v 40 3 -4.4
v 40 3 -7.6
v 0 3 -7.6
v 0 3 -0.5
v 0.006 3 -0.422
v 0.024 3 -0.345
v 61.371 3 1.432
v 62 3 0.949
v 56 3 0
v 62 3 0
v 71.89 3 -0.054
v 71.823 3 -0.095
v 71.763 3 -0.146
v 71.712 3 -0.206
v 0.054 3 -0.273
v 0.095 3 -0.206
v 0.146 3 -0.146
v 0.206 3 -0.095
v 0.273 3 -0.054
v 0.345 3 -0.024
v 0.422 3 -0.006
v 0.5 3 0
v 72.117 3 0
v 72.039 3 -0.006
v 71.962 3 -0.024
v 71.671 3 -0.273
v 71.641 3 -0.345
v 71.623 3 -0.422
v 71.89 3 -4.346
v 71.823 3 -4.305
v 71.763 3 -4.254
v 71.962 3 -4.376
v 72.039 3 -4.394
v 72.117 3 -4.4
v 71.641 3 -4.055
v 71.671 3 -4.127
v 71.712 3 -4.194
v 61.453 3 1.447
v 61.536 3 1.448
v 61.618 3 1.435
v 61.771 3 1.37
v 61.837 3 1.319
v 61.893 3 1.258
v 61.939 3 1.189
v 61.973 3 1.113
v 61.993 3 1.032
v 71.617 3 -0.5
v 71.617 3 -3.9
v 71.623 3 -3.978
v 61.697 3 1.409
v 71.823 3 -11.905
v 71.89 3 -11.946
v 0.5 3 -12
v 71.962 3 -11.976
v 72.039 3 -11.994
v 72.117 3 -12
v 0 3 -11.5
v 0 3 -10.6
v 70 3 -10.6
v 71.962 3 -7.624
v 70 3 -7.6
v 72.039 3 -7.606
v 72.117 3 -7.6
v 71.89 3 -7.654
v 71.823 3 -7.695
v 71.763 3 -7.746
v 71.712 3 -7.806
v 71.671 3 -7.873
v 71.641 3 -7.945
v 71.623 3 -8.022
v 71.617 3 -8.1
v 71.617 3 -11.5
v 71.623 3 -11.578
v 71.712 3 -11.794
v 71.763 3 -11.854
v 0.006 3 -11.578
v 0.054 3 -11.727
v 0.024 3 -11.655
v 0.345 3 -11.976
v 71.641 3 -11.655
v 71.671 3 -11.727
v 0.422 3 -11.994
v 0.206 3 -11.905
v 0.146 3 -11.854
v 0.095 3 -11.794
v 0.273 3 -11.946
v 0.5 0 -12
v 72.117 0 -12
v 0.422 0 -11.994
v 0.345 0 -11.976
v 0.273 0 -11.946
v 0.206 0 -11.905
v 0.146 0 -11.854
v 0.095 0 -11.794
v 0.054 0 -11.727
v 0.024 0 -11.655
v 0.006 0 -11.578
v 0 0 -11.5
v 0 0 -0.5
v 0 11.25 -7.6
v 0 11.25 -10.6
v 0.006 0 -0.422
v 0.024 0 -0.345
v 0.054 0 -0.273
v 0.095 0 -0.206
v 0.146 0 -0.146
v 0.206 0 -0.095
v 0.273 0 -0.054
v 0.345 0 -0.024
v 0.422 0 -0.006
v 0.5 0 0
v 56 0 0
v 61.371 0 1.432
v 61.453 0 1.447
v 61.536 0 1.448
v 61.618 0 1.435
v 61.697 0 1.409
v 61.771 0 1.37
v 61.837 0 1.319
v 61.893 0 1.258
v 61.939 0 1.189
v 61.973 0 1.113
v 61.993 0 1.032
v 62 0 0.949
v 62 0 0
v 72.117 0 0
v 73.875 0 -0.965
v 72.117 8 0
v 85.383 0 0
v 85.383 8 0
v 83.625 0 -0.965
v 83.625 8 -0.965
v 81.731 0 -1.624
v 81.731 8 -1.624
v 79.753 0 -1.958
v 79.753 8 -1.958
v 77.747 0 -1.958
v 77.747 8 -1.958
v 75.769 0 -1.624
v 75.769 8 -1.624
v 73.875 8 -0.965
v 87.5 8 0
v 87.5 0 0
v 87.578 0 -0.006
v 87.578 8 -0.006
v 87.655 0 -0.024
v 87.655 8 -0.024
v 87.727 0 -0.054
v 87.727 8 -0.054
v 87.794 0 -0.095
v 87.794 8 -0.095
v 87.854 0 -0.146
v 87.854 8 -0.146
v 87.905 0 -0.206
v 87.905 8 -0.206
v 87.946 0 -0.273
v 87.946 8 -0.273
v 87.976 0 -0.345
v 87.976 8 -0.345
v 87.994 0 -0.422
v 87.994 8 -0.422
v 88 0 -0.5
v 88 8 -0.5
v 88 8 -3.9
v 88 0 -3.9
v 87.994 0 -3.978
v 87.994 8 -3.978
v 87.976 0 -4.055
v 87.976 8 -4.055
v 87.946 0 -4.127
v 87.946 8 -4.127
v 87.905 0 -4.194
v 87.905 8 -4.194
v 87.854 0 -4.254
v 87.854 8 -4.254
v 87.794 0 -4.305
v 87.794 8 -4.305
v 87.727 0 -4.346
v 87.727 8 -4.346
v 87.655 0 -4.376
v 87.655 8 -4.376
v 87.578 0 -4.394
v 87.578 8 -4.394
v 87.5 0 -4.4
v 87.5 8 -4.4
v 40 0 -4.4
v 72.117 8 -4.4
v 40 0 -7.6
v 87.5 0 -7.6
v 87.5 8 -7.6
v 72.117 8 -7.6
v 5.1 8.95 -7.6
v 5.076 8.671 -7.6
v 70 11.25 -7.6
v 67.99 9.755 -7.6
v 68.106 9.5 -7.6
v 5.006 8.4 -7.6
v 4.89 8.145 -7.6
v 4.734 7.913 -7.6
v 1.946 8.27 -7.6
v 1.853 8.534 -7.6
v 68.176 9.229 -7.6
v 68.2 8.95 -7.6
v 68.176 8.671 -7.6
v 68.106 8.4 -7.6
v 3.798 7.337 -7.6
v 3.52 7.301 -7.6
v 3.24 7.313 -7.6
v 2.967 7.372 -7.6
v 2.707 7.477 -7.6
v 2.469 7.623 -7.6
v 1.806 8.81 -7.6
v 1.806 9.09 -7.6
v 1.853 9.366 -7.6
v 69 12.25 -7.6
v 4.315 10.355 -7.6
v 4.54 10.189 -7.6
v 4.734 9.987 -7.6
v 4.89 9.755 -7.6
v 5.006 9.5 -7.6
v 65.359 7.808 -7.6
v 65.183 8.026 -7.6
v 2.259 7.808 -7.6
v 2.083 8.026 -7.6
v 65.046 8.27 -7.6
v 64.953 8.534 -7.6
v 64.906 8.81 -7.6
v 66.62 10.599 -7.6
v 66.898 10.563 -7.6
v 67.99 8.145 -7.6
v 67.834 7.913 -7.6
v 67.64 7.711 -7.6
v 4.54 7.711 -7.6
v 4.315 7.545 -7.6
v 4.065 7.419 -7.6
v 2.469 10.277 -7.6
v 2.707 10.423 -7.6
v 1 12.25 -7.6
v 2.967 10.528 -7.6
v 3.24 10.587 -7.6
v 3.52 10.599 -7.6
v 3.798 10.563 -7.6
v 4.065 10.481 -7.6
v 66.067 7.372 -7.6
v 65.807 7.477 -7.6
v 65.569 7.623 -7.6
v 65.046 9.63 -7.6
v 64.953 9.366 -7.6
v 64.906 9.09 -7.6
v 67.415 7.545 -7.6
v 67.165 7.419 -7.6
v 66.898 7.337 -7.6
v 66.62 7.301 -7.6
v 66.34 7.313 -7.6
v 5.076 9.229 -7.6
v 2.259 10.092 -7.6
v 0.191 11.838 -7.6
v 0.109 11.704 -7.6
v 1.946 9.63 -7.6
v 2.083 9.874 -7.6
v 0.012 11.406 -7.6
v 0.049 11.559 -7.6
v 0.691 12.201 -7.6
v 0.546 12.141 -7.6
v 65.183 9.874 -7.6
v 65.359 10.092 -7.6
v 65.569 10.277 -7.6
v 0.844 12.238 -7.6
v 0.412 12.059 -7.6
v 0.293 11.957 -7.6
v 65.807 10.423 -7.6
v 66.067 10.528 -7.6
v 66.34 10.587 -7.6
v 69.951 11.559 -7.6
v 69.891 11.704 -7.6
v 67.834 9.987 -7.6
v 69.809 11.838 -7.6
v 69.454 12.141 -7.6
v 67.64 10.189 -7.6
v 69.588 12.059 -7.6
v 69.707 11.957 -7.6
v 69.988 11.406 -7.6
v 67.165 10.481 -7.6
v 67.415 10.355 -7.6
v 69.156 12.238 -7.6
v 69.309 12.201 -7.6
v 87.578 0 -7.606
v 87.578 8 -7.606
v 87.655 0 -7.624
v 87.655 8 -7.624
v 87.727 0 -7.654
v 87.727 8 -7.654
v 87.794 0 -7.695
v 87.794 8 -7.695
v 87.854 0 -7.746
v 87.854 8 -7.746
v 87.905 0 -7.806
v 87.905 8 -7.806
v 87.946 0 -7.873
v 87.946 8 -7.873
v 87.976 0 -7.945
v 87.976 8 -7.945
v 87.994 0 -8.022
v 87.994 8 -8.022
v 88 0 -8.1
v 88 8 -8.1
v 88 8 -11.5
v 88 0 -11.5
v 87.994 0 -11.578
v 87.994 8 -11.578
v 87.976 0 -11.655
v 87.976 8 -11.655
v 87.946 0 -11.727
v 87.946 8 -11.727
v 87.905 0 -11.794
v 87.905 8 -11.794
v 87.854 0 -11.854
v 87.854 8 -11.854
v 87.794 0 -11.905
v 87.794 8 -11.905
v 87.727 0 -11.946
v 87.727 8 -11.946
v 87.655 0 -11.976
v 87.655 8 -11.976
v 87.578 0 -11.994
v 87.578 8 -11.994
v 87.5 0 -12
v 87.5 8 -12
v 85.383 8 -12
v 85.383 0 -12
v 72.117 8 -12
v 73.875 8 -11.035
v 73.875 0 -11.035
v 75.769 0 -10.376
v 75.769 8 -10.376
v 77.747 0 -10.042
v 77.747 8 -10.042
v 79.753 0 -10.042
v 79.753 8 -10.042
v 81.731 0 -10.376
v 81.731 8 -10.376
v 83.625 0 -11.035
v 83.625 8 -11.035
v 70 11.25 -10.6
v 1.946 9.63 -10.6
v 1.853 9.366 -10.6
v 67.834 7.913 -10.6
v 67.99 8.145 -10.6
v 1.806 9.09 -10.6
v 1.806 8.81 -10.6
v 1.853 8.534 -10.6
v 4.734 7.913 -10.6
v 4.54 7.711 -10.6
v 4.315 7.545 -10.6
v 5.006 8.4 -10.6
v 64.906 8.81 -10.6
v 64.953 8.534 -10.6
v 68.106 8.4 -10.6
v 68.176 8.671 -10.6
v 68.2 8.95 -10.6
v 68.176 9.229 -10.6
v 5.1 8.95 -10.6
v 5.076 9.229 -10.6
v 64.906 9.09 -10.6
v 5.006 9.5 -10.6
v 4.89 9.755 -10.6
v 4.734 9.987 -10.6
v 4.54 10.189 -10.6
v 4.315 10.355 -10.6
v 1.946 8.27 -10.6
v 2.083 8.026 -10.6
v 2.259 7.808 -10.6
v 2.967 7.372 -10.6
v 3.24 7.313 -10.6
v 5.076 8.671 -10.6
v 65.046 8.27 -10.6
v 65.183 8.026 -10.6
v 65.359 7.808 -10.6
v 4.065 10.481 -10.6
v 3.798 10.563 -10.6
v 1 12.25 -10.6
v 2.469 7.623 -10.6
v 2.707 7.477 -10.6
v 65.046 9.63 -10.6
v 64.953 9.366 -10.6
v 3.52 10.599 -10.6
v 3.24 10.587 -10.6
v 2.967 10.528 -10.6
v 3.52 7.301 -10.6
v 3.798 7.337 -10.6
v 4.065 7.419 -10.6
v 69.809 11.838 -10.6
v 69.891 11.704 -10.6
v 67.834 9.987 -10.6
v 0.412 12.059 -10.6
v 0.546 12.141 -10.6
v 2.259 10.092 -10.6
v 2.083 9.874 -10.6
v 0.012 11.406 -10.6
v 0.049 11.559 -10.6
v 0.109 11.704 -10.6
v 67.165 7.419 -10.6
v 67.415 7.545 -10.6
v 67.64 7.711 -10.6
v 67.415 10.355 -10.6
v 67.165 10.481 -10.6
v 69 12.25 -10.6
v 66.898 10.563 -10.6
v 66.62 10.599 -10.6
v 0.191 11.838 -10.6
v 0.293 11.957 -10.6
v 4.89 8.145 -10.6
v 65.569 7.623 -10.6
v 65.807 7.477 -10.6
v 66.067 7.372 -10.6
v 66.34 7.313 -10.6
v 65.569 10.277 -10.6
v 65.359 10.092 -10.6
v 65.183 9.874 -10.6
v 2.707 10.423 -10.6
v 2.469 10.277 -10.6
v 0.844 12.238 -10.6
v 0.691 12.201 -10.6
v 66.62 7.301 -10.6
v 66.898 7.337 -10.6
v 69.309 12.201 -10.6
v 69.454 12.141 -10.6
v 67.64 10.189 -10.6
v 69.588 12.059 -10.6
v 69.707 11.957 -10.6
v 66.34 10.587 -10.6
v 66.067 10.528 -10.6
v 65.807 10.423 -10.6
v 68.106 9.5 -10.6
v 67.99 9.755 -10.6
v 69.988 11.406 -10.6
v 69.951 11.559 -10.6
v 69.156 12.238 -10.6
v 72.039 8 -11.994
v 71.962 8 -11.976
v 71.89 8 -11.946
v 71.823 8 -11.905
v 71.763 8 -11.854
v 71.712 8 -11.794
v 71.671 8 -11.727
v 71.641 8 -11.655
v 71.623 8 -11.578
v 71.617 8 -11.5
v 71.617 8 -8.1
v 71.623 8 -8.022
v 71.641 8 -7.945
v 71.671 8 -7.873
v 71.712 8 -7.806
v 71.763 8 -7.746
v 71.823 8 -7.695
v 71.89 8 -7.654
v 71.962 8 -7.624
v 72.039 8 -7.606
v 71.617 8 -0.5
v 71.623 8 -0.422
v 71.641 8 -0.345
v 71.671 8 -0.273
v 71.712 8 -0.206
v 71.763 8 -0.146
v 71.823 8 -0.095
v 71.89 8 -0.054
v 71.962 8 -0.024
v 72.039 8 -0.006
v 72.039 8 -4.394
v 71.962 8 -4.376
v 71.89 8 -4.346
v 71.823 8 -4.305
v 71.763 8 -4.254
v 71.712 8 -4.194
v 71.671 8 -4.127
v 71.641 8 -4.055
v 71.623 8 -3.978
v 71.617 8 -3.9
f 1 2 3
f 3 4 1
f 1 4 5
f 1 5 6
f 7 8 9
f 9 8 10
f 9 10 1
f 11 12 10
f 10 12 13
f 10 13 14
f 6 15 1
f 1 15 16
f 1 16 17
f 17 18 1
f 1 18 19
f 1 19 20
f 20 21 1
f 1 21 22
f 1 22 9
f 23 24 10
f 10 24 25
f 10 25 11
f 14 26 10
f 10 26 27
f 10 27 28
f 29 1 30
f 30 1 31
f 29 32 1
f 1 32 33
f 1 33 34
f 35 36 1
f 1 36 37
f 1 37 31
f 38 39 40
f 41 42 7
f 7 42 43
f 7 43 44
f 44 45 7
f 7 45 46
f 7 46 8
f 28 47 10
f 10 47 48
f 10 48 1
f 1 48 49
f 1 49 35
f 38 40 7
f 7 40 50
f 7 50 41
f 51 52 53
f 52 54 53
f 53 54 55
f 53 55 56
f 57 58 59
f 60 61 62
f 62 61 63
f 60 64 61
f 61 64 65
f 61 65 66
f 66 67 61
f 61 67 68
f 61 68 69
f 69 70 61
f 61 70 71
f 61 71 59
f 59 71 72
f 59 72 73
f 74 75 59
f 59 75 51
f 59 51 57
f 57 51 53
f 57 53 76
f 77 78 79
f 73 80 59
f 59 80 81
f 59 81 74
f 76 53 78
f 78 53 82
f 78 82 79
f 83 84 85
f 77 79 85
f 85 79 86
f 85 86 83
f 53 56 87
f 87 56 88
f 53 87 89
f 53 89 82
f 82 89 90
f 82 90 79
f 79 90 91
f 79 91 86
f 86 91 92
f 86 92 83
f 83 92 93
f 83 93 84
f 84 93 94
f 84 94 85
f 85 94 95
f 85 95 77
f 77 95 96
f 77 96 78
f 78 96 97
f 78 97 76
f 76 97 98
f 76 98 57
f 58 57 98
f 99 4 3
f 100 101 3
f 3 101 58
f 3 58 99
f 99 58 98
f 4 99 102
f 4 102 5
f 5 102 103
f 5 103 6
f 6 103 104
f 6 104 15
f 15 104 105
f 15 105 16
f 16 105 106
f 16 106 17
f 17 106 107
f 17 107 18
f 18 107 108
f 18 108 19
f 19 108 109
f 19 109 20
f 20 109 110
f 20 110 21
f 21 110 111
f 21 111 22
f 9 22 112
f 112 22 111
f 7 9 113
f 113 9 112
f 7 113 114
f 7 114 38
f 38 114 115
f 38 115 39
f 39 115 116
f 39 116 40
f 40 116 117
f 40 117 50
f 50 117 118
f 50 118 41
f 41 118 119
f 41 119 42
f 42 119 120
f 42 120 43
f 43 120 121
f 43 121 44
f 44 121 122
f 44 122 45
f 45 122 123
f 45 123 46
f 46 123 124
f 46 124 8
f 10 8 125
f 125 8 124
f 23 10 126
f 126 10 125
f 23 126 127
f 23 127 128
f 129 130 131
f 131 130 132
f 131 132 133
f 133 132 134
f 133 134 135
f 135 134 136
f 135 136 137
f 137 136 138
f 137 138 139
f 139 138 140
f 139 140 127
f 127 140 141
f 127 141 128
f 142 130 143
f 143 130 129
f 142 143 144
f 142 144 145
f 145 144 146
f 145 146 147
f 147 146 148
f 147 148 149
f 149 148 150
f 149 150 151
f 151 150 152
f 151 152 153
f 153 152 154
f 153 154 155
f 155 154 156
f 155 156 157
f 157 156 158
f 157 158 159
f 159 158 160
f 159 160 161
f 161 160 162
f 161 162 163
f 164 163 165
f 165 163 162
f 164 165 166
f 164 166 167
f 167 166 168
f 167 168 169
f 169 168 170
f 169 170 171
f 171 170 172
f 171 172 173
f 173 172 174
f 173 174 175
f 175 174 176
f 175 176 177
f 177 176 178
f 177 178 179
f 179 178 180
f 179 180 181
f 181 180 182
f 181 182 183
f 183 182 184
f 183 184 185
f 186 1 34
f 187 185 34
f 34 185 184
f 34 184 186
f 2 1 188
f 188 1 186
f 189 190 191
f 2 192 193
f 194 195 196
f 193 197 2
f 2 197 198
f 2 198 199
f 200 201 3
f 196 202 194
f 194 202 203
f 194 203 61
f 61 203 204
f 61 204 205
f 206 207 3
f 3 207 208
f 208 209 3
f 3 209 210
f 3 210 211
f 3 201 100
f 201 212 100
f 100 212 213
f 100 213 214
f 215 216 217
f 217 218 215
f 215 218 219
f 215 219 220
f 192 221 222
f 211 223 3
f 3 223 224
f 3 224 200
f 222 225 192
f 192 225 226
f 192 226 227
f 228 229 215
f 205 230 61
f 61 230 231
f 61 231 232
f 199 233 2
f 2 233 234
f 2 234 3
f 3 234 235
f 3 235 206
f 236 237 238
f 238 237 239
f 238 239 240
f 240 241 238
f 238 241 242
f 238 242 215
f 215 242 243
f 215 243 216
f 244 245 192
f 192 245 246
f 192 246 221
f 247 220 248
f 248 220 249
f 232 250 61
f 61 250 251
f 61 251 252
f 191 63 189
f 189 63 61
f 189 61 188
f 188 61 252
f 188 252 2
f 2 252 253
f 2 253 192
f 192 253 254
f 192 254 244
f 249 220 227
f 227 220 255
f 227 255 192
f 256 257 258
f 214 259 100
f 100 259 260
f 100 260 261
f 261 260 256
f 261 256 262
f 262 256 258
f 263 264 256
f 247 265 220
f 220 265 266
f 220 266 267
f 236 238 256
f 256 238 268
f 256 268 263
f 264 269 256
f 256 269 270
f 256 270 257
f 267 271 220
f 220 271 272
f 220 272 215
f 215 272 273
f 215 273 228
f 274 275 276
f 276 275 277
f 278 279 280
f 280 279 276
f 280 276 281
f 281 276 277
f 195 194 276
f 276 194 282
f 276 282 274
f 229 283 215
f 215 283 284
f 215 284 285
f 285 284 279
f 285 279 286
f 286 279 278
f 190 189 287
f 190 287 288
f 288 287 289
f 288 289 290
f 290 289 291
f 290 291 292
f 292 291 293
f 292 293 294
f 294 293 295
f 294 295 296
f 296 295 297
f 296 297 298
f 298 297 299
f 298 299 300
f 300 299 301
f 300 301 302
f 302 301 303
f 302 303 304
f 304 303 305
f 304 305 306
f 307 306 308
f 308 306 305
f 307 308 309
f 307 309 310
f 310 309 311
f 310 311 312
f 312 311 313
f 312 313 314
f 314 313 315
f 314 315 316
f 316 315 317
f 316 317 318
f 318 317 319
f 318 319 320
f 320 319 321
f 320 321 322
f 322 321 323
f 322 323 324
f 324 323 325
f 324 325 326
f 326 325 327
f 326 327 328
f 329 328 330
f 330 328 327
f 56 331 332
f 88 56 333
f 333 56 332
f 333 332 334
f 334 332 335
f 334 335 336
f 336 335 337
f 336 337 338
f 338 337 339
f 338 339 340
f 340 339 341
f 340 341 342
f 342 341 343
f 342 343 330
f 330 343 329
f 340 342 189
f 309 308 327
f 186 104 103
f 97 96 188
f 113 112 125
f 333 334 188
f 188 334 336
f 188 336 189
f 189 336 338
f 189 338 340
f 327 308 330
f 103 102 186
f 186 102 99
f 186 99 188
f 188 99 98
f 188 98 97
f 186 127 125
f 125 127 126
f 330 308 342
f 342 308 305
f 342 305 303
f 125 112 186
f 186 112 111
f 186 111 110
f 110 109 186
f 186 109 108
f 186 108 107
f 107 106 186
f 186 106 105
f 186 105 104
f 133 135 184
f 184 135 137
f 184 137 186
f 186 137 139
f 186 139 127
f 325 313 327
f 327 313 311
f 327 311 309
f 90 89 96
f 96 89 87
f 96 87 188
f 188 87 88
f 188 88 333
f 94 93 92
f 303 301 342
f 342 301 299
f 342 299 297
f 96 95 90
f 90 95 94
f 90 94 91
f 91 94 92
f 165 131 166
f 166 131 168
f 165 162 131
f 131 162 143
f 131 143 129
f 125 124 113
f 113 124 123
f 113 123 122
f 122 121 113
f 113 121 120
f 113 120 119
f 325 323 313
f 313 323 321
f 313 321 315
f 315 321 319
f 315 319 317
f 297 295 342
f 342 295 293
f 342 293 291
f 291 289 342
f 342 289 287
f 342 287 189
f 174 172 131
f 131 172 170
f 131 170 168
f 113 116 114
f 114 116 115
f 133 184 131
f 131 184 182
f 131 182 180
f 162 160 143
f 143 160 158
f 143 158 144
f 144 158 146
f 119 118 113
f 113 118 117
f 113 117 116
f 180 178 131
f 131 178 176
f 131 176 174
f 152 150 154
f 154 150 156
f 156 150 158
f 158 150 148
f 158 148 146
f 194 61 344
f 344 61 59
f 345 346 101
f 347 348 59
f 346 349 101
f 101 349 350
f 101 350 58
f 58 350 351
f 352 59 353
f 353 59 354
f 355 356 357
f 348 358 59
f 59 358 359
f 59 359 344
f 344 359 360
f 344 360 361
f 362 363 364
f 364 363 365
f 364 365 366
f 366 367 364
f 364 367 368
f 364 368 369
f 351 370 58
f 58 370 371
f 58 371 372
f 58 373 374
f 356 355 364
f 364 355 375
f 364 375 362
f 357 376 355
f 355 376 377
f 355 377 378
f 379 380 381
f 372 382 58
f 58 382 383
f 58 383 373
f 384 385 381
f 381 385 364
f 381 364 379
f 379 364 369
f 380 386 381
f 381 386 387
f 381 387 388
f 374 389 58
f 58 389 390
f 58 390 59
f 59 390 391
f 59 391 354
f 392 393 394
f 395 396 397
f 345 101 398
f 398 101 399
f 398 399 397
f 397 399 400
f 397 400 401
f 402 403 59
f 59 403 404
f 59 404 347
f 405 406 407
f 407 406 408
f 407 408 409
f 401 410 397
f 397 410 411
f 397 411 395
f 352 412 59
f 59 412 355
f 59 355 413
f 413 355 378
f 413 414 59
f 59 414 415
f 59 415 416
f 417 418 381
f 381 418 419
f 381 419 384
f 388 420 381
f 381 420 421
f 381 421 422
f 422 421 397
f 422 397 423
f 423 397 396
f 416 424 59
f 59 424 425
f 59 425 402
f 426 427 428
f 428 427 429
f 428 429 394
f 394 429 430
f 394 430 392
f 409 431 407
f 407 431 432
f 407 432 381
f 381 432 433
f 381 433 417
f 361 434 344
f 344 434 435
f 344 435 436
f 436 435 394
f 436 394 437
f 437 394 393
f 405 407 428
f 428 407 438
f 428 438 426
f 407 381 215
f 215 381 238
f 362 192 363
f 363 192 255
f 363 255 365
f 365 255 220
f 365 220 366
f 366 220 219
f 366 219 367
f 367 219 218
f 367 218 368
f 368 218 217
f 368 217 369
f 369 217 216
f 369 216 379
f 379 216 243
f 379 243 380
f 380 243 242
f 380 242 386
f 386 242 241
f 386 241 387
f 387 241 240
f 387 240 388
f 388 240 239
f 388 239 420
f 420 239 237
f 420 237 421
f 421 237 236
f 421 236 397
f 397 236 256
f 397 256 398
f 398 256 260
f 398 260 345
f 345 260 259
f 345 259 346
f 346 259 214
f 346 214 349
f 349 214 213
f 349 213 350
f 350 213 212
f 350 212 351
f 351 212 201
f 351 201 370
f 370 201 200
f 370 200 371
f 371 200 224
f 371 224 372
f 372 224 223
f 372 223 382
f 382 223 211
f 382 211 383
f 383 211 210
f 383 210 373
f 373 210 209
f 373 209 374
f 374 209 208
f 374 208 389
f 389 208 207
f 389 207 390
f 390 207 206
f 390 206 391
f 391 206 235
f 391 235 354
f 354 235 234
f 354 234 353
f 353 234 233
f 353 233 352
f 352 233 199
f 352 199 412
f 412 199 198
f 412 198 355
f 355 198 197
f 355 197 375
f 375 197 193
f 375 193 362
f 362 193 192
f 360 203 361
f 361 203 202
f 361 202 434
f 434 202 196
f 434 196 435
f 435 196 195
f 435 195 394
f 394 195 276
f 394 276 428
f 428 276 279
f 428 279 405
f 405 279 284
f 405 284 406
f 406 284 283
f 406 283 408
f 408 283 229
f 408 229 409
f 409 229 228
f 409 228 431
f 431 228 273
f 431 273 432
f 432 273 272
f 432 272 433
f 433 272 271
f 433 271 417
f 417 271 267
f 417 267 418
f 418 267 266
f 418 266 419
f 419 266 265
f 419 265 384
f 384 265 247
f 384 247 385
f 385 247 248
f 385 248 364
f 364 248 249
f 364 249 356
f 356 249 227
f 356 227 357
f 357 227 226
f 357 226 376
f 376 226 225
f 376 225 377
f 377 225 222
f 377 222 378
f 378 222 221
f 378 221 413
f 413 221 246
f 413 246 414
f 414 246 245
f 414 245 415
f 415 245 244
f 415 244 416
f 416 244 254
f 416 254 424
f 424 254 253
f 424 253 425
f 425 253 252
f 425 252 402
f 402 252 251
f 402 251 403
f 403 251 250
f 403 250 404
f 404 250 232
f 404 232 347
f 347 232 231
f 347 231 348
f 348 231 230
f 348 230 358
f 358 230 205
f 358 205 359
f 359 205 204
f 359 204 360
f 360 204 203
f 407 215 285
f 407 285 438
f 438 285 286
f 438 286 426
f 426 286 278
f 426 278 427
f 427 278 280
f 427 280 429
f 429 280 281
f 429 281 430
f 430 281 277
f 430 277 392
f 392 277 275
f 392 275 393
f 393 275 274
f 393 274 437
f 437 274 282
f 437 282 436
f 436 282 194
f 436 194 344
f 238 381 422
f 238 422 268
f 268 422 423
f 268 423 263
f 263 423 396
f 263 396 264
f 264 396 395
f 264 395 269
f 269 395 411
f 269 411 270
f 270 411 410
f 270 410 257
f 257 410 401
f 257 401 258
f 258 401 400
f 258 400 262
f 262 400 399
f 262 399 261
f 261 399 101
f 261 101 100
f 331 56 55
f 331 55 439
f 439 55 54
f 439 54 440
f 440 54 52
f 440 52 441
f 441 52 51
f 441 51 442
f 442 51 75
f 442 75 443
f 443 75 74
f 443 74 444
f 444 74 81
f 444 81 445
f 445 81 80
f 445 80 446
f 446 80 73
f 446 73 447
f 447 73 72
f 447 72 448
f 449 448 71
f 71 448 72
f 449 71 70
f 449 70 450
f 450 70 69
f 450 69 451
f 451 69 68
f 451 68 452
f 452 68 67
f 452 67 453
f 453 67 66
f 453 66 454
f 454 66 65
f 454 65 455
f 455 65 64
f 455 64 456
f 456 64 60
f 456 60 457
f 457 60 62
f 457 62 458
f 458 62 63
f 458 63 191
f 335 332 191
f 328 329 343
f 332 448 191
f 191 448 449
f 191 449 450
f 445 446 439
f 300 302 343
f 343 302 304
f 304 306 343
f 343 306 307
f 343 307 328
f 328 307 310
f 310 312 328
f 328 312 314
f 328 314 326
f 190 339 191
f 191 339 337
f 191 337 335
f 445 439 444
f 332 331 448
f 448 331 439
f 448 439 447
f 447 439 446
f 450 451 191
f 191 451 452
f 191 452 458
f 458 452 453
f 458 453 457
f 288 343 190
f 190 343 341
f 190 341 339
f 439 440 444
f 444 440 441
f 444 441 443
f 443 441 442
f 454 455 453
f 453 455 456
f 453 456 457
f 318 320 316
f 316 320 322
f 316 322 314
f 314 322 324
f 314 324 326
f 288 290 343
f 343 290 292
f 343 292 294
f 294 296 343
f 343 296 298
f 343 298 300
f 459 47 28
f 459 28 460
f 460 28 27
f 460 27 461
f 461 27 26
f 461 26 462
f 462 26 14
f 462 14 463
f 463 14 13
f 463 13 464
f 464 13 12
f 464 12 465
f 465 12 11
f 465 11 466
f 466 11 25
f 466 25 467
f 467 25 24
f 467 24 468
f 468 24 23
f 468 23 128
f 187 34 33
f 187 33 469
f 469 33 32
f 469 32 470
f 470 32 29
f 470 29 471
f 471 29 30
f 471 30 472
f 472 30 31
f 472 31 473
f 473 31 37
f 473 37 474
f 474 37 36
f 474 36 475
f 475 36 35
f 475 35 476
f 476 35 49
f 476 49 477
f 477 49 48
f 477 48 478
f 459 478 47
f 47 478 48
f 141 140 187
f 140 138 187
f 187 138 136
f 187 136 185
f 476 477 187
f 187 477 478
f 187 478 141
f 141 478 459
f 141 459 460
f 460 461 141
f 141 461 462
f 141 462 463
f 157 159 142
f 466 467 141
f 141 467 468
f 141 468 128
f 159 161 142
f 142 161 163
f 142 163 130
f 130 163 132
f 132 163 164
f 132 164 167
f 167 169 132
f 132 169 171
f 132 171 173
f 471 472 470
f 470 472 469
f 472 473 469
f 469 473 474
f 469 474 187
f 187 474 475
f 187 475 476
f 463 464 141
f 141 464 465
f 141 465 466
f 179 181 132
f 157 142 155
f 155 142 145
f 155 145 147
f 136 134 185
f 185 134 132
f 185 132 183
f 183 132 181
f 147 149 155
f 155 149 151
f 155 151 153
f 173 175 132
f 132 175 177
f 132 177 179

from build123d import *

# Parameters (mm, degrees)
EXTRUDE_1_DEPTH     = 3
SKETCH_4_W          = 70
SKETCH_4_H          = 3
EXTRUDE_2_DEPTH     = 9.25
CUT_EXTRUDE_1_REACH = 91.308
SKETCH_5_R          = 1.65
FILLET_1_R          = 1
EXTRUDE_3_DEPTH     = 5


with BuildPart() as part:
    # ｽｹｯﾁ2 → ﾎﾞｽ - 押し出し1 (new body)
    with BuildSketch(Plane(origin=(0, 0, 0), x_dir=(1, 0, 0), z_dir=(0, 1, 0))):
        with BuildLine():
            Line((70, 7.6), (40, 7.6))
            Line((40, 7.6), (40, 4.4))
            Line((40, 4.4), (70, 4.4))
            Line((70, 4.4), (87.5, 4.4))
            ThreePointArc((87.5, 4.4), (87.853553391, 4.253553391), (88, 3.9))
            Line((88, 3.9), (88, 0.5))
            ThreePointArc((88, 0.5), (87.853553391, 0.146446609), (87.5, 0))
            Line((87.5, 0), (85.383249581, 0))
            ThreePointArc((85.383249581, 0), (78.75, 2), (72.116750419, 0))
            Line((72.116750419, 0), (70, 0))
            Line((70, 0), (62, 0))
            Line((62, 0), (62, -0.949194177))
            ThreePointArc((62, -0.949194177), (61.80461807, -1.345688605), (61.371168675, -1.432311647))
            Line((61.371168675, -1.432311647), (56, 0))
            Line((56, 0), (0.5, 0))
            ThreePointArc((0.5, 0), (0.146446609, 0.146446609), (0, 0.5))
            Line((0, 0.5), (0, 11.5))
            ThreePointArc((0, 11.5), (0.146446609, 11.853553391), (0.5, 12))
            Line((0.5, 12), (70, 12))
            Line((70, 12), (72.116750419, 12))
            ThreePointArc((72.116750419, 12), (78.75, 10), (85.383249581, 12))
            Line((85.383249581, 12), (87.5, 12))
            ThreePointArc((87.5, 12), (87.853553391, 11.853553391), (88, 11.5))
            Line((88, 11.5), (88, 8.1))
            ThreePointArc((88, 8.1), (87.853553391, 7.746446609), (87.5, 7.6))
            Line((87.5, 7.6), (70, 7.6))
        make_face()
    extrude(amount=EXTRUDE_1_DEPTH)

    # ｽｹｯﾁ4 → ﾎﾞｽ - 押し出し2 (add)
    with BuildSketch(Plane(origin=(0, 3, 0), x_dir=(1, 0, 0), z_dir=(0, 1, 0))):
        with Locations((35, 9.1)):
            Rectangle(SKETCH_4_W, SKETCH_4_H)
    extrude(amount=EXTRUDE_2_DEPTH)

    # ｽｹｯﾁ5 → ｶｯﾄ - 押し出し1 (cut, up to next)
    with BuildSketch(Plane.XY.offset(-7.6), mode=Mode.PRIVATE) as cut_extrude_1_sk1:
        with Locations((3.45, 8.95)):
            Circle(SKETCH_5_R)
    cut_extrude_1_tool1 = extrude(cut_extrude_1_sk1.sketch, amount=-CUT_EXTRUDE_1_REACH, mode=Mode.PRIVATE) & part.part
    # ｽｹｯﾁ5 → ｶｯﾄ - 押し出し1 (cut, up to next)
    with BuildSketch(Plane.XY.offset(-7.6), mode=Mode.PRIVATE) as cut_extrude_1_sk2:
        with Locations((66.55, 8.95)):
            Circle(SKETCH_5_R)
    cut_extrude_1_tool2 = extrude(cut_extrude_1_sk2.sketch, amount=-CUT_EXTRUDE_1_REACH, mode=Mode.PRIVATE) & part.part
    add(cut_extrude_1_tool1.solids().sort_by_distance((3.45, 8.95, -7.6))[0], mode=Mode.SUBTRACT)
    add(cut_extrude_1_tool2.solids().sort_by_distance((66.55, 8.95, -7.6))[0], mode=Mode.SUBTRACT)

    # ﾌｨﾚｯﾄ1
    fillet_1_edges = [part.edges().sort_by_distance(p)[0] for p in [
        (70, 12.25, -9.1),
        (0, 12.25, -9.1),
    ]]
    fillet(fillet_1_edges, radius=FILLET_1_R)

    # ｽｹｯﾁ6 → ﾎﾞｽ - 押し出し3 (add)
    with BuildSketch(Plane(origin=(0, 3, 0), x_dir=(1, 0, 0), z_dir=(0, 1, 0))):
        with BuildLine():
            Line((88, 11.5), (88, 8.1))
            ThreePointArc((88, 8.1), (87.853553391, 7.746446609), (87.5, 7.6))
            Line((87.5, 7.6), (72.116750419, 7.6))
            ThreePointArc((72.116750419, 7.6), (71.763197029, 7.746446609), (71.616750419, 8.1))
            Line((71.616750419, 8.1), (71.616750419, 11.5))
            ThreePointArc((71.616750419, 11.5), (71.763197029, 11.853553391), (72.116750419, 12))
            ThreePointArc((72.116750419, 12), (78.75, 10), (85.383249581, 12))
            Line((85.383249581, 12), (87.5, 12))
            ThreePointArc((87.5, 12), (87.853553391, 11.853553391), (88, 11.5))
        make_face()
        with BuildLine():
            Line((88, 3.9), (88, 0.5))
            ThreePointArc((88, 0.5), (87.853553391, 0.146446609), (87.5, 0))
            Line((87.5, 0), (85.383249581, 0))
            ThreePointArc((85.383249581, 0), (78.75, 2), (72.116750419, 0))
            ThreePointArc((72.116750419, 0), (71.763197029, 0.146446609), (71.616750419, 0.5))
            Line((71.616750419, 0.5), (71.616750419, 3.9))
            ThreePointArc((71.616750419, 3.9), (71.763197029, 4.253553391), (72.116750419, 4.4))
            Line((72.116750419, 4.4), (87.5, 4.4))
            ThreePointArc((87.5, 4.4), (87.853553391, 4.253553391), (88, 3.9))
        make_face()
    extrude(amount=EXTRUDE_3_DEPTH)


solid = part.part
